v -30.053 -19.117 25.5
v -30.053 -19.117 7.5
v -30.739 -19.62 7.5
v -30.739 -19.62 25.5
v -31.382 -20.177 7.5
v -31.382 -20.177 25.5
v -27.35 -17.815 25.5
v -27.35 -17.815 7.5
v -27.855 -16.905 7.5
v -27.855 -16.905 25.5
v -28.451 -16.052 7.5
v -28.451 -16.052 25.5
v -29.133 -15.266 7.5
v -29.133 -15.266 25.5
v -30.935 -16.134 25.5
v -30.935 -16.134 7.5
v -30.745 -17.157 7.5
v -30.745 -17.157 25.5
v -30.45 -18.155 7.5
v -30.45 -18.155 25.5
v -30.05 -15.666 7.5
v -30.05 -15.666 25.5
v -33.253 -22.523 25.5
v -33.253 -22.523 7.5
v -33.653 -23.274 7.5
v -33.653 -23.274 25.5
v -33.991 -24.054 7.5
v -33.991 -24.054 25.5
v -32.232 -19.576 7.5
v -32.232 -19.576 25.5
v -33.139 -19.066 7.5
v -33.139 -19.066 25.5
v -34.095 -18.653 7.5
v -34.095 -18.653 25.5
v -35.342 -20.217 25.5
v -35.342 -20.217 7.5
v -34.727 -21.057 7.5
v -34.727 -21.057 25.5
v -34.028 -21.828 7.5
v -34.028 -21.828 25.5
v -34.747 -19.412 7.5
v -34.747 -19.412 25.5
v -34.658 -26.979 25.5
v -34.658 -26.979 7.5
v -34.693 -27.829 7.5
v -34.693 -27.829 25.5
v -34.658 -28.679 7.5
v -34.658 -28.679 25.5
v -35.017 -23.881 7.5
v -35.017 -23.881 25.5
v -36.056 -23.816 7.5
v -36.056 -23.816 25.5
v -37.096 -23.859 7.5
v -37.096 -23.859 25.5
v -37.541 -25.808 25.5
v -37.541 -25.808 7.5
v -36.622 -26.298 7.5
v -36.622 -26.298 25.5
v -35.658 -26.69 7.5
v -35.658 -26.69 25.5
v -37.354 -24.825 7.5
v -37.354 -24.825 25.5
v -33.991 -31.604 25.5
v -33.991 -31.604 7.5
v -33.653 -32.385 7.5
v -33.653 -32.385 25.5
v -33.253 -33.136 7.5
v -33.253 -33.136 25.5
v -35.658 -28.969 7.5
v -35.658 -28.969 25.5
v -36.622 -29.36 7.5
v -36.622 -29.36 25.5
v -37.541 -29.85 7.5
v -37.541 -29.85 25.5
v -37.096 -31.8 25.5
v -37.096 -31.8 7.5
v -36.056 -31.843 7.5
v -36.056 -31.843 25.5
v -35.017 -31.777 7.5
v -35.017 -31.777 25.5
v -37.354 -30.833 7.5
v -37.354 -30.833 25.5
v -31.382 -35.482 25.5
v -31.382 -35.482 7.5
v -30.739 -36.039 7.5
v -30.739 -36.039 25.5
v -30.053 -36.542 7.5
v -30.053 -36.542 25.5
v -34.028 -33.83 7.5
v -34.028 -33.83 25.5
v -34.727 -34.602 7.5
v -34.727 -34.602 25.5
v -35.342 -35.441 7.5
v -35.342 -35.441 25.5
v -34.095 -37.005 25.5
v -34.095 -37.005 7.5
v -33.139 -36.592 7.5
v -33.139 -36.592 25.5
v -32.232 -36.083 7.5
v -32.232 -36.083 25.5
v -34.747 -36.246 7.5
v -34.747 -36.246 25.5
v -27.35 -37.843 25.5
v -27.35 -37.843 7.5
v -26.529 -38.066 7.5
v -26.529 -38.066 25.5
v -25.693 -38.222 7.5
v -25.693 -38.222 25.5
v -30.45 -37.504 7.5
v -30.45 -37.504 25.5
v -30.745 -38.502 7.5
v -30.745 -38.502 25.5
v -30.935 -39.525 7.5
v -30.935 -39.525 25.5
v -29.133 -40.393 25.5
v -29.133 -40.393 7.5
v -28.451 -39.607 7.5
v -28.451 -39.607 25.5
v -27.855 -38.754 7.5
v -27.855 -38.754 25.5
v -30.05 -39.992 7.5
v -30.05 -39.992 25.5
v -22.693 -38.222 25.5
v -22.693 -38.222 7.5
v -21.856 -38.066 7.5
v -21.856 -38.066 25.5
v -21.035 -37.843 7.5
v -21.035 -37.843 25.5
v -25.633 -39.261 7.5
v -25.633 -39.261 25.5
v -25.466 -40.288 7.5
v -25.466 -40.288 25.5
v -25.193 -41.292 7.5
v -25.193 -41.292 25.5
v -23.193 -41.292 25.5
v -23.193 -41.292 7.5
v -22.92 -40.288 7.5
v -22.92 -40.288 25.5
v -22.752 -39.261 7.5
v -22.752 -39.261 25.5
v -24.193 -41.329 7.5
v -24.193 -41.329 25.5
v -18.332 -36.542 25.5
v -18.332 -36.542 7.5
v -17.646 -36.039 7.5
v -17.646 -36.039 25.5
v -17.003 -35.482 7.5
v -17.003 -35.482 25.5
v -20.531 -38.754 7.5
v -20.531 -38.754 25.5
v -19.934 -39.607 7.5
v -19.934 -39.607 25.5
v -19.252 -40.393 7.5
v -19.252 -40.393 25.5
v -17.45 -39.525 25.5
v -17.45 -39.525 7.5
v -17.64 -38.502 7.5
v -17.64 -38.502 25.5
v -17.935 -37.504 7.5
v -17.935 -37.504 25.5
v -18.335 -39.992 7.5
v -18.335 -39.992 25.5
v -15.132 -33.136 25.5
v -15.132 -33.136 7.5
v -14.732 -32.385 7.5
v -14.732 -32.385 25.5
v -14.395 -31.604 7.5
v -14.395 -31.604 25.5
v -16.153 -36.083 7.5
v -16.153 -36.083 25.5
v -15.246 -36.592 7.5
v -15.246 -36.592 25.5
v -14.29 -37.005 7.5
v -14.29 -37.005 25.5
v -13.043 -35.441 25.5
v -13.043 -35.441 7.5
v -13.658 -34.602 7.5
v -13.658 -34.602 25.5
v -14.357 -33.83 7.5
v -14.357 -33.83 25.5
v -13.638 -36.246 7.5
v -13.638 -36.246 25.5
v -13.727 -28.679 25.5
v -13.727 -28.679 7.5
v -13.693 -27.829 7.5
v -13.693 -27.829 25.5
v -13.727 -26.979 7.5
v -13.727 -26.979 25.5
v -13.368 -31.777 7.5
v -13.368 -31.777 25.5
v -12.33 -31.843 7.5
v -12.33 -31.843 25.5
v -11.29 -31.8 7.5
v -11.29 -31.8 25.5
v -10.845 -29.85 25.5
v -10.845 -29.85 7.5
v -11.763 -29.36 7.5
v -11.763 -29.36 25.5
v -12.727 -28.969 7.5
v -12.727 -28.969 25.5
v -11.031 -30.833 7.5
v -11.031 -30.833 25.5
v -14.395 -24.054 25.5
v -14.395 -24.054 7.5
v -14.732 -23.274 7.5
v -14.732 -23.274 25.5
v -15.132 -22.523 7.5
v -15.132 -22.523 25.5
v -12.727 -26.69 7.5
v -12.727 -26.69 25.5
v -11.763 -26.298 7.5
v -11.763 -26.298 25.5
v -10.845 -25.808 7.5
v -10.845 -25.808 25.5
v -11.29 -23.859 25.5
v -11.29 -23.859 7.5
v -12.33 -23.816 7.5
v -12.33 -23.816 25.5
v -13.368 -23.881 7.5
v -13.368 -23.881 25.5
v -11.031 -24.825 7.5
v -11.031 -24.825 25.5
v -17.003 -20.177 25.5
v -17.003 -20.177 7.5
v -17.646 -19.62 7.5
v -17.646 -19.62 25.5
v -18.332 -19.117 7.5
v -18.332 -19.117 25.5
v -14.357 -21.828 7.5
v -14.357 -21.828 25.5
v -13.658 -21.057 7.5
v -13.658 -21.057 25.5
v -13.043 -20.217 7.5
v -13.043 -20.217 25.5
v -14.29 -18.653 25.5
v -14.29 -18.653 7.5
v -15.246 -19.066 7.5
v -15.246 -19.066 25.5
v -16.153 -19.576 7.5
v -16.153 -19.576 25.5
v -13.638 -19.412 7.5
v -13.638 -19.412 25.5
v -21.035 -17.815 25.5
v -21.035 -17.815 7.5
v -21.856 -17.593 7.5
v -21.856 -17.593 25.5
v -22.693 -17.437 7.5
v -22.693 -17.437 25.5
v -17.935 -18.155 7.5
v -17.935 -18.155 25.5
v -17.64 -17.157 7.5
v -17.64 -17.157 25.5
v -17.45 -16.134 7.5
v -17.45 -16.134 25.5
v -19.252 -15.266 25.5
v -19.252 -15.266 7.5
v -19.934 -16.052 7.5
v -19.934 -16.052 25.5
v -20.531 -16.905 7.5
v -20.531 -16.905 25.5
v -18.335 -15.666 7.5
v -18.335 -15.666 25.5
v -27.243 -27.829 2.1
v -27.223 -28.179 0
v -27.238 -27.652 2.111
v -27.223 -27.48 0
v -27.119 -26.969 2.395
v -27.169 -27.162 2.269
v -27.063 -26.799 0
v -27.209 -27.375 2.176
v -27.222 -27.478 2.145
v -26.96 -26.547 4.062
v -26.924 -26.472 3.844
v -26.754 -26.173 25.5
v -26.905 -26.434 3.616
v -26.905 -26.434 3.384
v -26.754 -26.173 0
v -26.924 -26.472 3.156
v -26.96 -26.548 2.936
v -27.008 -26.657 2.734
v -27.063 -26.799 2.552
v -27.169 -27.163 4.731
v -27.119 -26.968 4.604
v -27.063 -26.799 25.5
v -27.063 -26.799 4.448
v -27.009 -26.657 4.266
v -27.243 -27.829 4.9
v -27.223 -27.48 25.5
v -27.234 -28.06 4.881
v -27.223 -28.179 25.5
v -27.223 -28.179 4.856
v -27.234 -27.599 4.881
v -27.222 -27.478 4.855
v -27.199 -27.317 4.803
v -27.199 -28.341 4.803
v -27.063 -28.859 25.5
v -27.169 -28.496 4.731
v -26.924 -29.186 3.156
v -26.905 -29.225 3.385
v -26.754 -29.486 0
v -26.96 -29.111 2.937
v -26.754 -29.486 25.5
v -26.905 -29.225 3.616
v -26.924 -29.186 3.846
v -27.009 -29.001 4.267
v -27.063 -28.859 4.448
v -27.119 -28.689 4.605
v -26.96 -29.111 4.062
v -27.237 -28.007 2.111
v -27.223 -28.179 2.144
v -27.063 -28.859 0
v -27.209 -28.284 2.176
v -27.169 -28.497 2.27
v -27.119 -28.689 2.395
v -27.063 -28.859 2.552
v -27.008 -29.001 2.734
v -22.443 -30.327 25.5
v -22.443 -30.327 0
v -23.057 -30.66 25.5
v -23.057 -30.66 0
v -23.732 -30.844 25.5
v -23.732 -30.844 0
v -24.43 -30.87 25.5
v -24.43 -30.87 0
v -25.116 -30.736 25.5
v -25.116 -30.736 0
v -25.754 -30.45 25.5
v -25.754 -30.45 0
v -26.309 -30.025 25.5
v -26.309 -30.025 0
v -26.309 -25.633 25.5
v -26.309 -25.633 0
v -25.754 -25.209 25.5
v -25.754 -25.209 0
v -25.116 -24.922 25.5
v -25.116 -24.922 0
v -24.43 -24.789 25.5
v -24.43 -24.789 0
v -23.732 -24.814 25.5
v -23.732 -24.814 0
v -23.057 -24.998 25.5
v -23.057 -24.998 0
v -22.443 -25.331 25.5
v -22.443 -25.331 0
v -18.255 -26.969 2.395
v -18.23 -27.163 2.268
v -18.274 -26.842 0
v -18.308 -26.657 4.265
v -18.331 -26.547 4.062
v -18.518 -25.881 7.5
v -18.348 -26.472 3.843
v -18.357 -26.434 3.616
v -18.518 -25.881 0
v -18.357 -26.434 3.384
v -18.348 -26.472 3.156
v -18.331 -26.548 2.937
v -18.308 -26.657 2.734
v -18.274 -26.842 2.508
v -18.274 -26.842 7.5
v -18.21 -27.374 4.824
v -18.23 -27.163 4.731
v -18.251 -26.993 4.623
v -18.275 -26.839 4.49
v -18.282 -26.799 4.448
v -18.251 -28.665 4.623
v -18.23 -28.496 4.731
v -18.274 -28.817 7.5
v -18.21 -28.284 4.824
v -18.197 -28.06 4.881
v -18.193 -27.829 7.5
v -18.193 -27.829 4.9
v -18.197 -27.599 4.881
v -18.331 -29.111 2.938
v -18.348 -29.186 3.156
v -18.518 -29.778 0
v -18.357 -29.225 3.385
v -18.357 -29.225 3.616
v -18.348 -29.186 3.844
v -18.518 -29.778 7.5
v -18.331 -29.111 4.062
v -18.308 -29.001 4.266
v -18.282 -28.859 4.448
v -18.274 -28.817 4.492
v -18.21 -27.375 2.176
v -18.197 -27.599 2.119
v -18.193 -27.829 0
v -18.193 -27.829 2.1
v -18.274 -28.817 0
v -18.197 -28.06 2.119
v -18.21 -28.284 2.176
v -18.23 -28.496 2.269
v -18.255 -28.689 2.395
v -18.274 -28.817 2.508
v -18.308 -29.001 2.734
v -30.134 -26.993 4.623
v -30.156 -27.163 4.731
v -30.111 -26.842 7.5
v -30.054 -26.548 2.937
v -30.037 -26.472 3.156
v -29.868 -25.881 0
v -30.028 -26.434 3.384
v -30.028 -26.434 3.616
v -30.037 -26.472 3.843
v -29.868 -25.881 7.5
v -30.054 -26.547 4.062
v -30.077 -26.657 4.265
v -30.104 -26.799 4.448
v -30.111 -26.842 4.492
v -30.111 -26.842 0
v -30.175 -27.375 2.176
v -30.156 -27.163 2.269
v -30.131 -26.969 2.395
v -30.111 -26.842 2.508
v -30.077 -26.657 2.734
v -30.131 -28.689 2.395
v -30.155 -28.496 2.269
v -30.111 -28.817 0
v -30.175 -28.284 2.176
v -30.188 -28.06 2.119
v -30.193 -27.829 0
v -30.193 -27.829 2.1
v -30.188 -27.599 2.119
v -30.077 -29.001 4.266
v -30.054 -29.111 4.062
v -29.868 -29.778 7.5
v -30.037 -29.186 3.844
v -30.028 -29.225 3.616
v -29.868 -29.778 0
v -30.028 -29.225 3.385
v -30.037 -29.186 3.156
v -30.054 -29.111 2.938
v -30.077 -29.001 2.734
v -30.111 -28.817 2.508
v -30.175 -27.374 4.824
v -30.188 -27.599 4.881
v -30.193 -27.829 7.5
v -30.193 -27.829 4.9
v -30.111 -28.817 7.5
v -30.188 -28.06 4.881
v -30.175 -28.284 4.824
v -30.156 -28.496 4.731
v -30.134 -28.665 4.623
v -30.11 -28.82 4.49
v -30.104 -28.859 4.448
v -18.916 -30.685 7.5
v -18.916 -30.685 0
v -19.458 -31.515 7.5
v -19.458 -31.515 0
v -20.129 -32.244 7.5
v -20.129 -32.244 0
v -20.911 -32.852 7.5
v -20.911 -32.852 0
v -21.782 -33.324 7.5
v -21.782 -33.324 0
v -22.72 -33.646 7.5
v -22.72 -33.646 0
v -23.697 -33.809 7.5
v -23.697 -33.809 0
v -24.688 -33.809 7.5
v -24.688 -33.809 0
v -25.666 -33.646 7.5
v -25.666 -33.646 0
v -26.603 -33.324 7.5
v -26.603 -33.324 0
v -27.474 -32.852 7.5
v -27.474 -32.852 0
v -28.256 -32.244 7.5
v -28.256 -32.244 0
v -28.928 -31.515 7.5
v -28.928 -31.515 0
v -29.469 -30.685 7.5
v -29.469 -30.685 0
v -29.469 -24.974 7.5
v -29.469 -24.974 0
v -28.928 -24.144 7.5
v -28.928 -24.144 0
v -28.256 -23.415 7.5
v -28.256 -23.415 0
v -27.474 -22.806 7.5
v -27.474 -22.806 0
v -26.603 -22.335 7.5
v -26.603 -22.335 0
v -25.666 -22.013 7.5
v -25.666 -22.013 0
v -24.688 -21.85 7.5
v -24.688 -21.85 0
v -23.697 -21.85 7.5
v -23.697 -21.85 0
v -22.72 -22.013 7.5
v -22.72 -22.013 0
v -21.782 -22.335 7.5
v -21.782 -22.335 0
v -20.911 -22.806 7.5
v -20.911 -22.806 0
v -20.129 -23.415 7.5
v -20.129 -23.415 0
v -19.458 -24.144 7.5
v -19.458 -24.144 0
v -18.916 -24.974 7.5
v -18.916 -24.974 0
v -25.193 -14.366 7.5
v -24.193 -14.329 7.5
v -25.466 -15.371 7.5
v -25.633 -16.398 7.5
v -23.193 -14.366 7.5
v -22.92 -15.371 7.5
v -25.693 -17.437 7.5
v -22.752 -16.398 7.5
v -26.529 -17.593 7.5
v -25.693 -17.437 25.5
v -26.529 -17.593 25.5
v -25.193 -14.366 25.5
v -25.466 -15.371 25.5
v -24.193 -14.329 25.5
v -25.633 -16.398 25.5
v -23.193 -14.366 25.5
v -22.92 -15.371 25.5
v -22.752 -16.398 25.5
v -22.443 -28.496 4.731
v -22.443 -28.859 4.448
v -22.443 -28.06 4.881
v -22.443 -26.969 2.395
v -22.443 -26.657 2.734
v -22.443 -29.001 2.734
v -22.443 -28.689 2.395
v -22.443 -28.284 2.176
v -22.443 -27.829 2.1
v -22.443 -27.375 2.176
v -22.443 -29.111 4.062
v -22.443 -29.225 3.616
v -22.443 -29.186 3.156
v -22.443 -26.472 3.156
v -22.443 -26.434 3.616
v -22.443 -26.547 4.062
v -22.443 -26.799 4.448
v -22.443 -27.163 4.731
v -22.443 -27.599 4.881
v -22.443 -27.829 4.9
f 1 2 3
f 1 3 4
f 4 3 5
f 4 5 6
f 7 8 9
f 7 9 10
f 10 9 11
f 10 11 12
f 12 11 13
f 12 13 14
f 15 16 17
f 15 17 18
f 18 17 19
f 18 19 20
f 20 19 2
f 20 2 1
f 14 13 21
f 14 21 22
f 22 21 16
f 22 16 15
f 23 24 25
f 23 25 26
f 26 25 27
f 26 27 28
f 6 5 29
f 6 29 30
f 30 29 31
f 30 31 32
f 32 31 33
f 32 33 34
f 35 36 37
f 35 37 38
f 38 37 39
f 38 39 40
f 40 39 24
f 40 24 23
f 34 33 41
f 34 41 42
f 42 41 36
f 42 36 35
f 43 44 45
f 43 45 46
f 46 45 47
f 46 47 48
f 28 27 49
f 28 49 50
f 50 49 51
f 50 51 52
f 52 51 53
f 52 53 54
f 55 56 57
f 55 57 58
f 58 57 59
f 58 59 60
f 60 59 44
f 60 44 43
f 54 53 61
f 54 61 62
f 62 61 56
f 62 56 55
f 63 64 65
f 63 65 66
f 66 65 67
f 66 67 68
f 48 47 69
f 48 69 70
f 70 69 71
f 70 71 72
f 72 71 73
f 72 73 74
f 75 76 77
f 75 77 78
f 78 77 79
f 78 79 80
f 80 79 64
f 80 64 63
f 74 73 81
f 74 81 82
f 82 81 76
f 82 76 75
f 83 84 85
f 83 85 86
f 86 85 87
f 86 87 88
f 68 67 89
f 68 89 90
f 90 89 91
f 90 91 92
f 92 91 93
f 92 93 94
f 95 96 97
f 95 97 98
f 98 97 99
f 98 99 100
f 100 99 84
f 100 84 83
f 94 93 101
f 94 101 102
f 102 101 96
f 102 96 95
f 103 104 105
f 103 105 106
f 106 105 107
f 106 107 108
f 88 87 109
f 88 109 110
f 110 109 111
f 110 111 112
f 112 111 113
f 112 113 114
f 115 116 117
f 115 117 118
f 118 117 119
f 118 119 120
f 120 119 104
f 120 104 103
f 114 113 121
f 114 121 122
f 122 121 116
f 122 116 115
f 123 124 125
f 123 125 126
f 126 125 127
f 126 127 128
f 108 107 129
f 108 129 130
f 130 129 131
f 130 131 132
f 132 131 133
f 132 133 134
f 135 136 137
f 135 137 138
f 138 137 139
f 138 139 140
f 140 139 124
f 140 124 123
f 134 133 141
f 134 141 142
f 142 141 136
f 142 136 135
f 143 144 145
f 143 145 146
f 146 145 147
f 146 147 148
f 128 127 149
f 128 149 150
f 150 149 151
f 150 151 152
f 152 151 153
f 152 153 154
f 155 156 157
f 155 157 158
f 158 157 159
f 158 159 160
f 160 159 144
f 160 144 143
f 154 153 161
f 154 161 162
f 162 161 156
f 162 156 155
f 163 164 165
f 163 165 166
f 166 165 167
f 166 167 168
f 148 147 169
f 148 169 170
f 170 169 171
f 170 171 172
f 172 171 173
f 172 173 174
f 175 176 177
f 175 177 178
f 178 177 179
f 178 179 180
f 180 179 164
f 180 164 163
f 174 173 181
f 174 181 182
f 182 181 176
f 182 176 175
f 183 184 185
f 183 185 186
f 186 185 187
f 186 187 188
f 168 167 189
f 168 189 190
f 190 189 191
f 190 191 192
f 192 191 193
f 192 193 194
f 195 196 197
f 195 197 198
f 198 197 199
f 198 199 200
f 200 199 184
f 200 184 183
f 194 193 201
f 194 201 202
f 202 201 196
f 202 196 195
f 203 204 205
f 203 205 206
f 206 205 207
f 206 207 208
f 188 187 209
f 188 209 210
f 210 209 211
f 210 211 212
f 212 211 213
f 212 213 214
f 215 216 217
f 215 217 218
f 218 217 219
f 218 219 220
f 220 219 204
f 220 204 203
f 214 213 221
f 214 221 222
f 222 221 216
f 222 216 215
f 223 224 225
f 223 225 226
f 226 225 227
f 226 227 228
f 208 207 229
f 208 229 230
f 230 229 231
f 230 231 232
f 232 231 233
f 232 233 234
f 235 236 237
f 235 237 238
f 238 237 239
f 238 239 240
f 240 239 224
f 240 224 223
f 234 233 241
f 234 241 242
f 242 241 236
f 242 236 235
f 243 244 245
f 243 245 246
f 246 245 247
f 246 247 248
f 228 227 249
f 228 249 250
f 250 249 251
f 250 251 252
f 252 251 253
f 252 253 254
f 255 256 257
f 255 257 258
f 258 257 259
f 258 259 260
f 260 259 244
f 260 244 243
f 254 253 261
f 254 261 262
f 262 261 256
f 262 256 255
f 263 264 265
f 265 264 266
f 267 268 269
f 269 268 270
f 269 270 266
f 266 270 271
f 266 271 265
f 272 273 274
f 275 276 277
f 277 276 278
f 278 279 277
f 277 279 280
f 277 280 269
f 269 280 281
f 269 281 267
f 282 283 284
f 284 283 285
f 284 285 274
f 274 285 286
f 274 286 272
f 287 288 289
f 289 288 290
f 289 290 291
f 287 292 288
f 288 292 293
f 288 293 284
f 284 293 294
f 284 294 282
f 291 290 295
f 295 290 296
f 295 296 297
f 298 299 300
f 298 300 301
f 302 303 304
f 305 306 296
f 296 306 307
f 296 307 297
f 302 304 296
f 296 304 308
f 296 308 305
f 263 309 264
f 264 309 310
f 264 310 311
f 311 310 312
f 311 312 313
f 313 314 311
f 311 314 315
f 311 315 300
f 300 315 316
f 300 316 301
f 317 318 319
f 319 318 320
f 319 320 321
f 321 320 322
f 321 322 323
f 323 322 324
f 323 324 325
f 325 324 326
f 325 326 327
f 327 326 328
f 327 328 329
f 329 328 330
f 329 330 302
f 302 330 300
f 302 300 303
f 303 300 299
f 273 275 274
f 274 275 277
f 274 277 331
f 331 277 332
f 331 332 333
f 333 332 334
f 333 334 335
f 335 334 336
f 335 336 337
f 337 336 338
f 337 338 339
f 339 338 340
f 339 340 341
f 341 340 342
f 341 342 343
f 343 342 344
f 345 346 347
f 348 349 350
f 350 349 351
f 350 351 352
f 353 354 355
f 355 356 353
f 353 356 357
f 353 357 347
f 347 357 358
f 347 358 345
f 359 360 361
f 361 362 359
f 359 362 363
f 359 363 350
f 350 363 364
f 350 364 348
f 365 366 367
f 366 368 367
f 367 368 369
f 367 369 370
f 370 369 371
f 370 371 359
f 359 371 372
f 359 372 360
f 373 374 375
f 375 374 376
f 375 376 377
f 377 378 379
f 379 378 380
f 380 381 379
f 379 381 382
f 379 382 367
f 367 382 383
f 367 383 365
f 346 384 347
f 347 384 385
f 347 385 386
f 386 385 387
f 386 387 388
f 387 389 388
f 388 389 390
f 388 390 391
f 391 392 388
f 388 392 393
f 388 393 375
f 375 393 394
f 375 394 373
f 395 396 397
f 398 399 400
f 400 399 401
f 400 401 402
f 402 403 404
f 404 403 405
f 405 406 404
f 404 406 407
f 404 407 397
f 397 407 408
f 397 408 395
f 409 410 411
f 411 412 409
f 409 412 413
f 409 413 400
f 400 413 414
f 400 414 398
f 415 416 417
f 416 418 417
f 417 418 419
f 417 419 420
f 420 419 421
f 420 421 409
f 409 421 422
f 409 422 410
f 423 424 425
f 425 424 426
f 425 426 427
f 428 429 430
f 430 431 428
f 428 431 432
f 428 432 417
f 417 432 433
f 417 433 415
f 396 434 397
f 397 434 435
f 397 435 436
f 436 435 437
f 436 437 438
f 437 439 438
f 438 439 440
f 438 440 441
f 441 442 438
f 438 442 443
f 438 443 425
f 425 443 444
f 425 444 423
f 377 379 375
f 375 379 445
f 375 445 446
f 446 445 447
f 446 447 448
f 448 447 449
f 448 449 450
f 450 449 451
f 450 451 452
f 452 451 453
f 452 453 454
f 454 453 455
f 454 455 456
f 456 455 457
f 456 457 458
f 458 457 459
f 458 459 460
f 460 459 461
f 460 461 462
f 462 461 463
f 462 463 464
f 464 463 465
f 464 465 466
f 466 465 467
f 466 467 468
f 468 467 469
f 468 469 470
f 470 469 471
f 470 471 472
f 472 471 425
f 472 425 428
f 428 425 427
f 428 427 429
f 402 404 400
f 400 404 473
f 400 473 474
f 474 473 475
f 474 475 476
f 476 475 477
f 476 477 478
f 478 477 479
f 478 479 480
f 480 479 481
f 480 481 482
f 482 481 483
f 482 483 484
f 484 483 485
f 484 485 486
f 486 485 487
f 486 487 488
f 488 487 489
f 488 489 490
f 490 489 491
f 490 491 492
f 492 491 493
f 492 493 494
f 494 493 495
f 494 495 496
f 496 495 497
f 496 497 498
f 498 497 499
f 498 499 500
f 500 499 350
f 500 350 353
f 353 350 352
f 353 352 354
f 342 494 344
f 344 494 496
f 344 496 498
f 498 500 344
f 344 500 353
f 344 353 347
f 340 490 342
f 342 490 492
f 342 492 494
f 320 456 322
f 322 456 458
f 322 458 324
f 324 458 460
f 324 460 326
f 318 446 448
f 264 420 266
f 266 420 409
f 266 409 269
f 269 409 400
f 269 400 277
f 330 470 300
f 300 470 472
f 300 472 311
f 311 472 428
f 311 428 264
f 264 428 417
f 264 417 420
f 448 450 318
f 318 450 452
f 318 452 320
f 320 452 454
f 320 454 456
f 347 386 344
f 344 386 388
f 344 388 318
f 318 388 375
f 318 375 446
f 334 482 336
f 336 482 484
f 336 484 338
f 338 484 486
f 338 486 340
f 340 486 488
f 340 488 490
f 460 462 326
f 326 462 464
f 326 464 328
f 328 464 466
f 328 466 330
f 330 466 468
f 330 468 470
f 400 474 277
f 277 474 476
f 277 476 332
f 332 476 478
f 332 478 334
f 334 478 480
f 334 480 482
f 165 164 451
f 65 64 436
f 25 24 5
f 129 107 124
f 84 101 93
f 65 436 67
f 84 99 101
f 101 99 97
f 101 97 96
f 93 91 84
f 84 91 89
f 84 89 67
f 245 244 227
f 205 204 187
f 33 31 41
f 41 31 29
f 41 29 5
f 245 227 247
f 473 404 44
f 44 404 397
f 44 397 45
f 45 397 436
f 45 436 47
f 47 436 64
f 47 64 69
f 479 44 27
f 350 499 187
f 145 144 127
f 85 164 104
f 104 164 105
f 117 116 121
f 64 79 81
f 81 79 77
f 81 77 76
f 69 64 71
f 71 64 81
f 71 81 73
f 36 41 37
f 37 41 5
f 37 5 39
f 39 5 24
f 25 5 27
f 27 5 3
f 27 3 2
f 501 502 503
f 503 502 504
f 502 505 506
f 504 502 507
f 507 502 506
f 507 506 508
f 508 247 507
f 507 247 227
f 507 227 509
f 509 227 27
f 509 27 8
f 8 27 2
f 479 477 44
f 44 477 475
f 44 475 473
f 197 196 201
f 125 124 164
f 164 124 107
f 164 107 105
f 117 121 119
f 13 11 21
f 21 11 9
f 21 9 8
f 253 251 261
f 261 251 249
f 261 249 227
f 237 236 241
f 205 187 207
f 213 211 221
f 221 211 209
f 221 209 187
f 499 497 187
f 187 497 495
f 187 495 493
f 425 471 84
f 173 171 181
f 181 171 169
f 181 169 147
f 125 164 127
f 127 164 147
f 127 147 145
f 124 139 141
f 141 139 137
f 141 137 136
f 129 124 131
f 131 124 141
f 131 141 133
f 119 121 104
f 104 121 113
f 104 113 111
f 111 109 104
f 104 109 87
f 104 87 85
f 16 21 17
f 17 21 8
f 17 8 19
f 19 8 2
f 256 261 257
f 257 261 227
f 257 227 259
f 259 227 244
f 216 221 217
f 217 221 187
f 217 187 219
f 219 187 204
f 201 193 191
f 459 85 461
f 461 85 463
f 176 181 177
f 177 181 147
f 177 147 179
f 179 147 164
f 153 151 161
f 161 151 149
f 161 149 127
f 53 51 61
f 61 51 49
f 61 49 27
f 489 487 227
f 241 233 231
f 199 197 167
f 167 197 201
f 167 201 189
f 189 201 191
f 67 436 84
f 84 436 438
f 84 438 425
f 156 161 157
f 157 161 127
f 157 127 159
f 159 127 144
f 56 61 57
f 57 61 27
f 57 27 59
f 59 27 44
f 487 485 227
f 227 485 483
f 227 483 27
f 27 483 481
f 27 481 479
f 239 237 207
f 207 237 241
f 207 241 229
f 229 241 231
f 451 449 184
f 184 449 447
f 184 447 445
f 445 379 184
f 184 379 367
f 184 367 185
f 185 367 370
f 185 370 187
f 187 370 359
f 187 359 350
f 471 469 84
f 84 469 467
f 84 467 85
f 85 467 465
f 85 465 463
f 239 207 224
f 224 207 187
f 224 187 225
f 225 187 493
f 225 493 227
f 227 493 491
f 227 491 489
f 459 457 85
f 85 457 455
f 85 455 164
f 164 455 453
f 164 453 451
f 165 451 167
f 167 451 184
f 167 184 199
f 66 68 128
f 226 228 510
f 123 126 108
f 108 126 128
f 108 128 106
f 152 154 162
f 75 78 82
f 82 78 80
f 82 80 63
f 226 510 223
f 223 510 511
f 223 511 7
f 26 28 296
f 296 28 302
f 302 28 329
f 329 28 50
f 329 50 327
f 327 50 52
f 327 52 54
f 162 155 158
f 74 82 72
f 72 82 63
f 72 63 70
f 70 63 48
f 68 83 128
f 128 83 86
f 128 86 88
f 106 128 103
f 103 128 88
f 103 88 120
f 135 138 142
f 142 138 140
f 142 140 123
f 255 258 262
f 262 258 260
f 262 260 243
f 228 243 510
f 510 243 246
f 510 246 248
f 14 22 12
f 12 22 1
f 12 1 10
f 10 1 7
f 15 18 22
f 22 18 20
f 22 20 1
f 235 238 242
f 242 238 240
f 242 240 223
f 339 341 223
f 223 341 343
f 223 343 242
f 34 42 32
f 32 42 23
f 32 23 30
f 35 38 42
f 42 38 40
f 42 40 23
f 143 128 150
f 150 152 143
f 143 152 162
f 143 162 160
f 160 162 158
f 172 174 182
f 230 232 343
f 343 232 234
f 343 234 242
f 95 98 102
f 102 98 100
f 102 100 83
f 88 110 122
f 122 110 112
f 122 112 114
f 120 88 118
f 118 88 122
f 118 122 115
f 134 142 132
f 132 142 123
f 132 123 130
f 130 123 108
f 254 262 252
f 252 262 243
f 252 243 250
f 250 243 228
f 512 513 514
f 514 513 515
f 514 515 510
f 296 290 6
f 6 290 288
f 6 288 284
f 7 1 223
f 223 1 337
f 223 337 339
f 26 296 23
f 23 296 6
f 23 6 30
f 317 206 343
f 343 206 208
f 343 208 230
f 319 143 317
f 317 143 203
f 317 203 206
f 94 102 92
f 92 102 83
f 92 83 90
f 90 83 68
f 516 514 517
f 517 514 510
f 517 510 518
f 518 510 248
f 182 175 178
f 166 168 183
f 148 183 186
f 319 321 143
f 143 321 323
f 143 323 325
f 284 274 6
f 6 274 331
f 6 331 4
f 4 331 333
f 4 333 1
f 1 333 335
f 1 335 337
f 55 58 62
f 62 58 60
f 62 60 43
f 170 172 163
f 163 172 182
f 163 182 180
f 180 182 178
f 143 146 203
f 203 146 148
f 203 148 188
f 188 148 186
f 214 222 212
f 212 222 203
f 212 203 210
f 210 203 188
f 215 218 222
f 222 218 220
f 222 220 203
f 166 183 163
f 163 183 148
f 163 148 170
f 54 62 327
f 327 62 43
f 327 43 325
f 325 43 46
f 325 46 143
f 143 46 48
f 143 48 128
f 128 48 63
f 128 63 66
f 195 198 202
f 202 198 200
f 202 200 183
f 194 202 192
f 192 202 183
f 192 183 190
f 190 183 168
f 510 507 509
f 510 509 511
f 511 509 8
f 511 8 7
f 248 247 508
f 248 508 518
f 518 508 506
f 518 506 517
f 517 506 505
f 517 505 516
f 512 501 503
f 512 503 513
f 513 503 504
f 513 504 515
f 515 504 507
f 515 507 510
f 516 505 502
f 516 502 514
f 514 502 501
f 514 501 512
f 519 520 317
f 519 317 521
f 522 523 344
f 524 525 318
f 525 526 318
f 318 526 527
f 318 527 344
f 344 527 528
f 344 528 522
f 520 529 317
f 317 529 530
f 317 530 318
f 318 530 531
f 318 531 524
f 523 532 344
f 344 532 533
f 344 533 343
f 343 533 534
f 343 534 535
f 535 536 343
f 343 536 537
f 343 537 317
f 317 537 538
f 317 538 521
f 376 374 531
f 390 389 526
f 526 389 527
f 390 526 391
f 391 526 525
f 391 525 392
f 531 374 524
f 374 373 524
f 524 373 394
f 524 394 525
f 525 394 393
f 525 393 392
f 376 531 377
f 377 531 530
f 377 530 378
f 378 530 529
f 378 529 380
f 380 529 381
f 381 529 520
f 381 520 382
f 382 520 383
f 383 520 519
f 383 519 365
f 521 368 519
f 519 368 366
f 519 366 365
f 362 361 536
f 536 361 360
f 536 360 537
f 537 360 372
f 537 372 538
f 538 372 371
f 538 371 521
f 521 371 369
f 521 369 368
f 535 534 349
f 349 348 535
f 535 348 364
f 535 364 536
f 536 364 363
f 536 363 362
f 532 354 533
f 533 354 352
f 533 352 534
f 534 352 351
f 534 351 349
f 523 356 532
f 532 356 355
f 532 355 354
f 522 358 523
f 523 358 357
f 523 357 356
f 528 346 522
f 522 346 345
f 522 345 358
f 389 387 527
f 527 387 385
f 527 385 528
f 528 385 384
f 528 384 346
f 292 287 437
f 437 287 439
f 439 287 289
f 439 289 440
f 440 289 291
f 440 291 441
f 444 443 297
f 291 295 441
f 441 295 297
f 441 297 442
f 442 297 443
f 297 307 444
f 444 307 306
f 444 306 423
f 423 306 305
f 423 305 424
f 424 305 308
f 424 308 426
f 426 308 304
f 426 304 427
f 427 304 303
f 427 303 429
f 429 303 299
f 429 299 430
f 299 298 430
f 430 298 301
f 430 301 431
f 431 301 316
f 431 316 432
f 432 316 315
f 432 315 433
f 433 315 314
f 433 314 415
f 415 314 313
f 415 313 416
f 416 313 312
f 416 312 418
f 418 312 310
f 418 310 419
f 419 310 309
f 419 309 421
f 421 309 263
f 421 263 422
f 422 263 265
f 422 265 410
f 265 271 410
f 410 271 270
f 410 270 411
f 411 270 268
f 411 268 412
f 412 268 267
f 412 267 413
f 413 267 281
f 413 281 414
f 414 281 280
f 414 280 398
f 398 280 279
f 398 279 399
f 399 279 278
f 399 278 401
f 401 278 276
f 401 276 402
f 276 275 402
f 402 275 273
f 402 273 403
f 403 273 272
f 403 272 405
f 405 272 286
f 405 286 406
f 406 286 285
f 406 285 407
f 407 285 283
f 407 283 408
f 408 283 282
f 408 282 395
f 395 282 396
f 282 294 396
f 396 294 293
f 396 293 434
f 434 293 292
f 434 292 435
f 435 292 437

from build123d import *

# Parameters (mm, degrees)
SKETCH1_R               = 6
SKETCH1_R_2             = 3.05
BOSS_EXTRUDE1_DEPTH     = 7.5
SKETCH2_R               = 10.5
BOSS_EXTRUDE3_DEPTH     = 18
BOSS_EXTRUDE4_DEPTH     = 18
CIRPATTERN1_COUNT       = 14
SKETCH3_R               = 3.05
CUT_EXTRUDE1_DEPTH      = 19
SKETCH5_W               = 1.3
SKETCH5_H               = 8.98796618
BOSS_EXTRUDE5_DEPTH     = 25.5
SKETCH4_R               = 1.4
CUT_EXTRUDE2_DEPTH      = 1
CUT_EXTRUDE2_DEPTH_BACK = 38.540546983


with BuildPart() as part:
    # Sketch1 → Boss-Extrude1 (new body)
    with BuildSketch(Plane.XY):
        with Locations((-24.192657344, -27.82930415)):
            Circle(SKETCH1_R)
        with Locations((-24.192657344, -27.82930415)):
            Circle(SKETCH1_R_2, mode=Mode.SUBTRACT)
    extrude(amount=BOSS_EXTRUDE1_DEPTH)

    # Sketch2 → Boss-Extrude3 (add)
    with BuildSketch(Plane.XY.offset(7.5)):
        with Locations((-24.192657344, -27.82930415)):
            Circle(SKETCH2_R)
    extrude(amount=BOSS_EXTRUDE3_DEPTH)

    # Sketch2<4> → Boss-Extrude4 (add)
    with BuildSketch(Plane.XY.offset(7.5)):
        with BuildLine():
            ThreePointArc((-22.692657344, -17.436999304), (-22.822516009, -15.882132595), (-23.192657344, -14.366392132))
            ThreePointArc((-23.192657344, -14.366392132), (-24.192657344, -14.32930415), (-25.192657344, -14.366392132))
            ThreePointArc((-25.192657344, -14.366392132), (-25.562798679, -15.882132595), (-25.692657344, -17.436999304))
            ThreePointArc((-25.692657344, -17.436999304), (-24.192657344, -17.32930415), (-22.692657344, -17.436999304))
        make_face()
    boss_extrude4 = extrude(amount=BOSS_EXTRUDE4_DEPTH)

    # CirPattern1: Boss-Extrude4 ×14 about axis
    cirpattern1_axis = Axis((-24.192657344, -27.82930415, 0), (0, 0, 1))
    for i in range(1, CIRPATTERN1_COUNT):
        add(boss_extrude4.rotate(cirpattern1_axis, i * 360 / CIRPATTERN1_COUNT))

    # Sketch3 → Cut-Extrude1 (cut, through all)
    with BuildSketch(Plane(origin=(0, 0, 7.5), x_dir=(-1, 0, 0), z_dir=(0, 0, -1))):
        with Locations((24.192657344, -27.82930415)):
            Circle(SKETCH3_R)
    extrude(amount=-CUT_EXTRUDE1_DEPTH, mode=Mode.SUBTRACT)

    # Sketch5 → Boss-Extrude5 (add, through all)
    with BuildSketch(Plane(origin=(0, 0, 0), x_dir=(-1, 0, 0), z_dir=(0, 0, -1))):
        with Locations((21.792657344, -27.156324883)):
            Rectangle(SKETCH5_W, SKETCH5_H)
    extrude(amount=-BOSS_EXTRUDE5_DEPTH)

    # Sketch4 → Cut-Extrude2 (cut, two sides)
    with BuildSketch(Plane(origin=(0, 0, 0), x_dir=(0, 0, -1), z_dir=(1, 0, 0))) as cut_extrude2_sk:
        with Locations((-3.5, -27.82930415)):
            Circle(SKETCH4_R)
    extrude(amount=CUT_EXTRUDE2_DEPTH, mode=Mode.SUBTRACT)
    extrude(cut_extrude2_sk.sketch, amount=-CUT_EXTRUDE2_DEPTH_BACK, mode=Mode.SUBTRACT)


solid = part.part
